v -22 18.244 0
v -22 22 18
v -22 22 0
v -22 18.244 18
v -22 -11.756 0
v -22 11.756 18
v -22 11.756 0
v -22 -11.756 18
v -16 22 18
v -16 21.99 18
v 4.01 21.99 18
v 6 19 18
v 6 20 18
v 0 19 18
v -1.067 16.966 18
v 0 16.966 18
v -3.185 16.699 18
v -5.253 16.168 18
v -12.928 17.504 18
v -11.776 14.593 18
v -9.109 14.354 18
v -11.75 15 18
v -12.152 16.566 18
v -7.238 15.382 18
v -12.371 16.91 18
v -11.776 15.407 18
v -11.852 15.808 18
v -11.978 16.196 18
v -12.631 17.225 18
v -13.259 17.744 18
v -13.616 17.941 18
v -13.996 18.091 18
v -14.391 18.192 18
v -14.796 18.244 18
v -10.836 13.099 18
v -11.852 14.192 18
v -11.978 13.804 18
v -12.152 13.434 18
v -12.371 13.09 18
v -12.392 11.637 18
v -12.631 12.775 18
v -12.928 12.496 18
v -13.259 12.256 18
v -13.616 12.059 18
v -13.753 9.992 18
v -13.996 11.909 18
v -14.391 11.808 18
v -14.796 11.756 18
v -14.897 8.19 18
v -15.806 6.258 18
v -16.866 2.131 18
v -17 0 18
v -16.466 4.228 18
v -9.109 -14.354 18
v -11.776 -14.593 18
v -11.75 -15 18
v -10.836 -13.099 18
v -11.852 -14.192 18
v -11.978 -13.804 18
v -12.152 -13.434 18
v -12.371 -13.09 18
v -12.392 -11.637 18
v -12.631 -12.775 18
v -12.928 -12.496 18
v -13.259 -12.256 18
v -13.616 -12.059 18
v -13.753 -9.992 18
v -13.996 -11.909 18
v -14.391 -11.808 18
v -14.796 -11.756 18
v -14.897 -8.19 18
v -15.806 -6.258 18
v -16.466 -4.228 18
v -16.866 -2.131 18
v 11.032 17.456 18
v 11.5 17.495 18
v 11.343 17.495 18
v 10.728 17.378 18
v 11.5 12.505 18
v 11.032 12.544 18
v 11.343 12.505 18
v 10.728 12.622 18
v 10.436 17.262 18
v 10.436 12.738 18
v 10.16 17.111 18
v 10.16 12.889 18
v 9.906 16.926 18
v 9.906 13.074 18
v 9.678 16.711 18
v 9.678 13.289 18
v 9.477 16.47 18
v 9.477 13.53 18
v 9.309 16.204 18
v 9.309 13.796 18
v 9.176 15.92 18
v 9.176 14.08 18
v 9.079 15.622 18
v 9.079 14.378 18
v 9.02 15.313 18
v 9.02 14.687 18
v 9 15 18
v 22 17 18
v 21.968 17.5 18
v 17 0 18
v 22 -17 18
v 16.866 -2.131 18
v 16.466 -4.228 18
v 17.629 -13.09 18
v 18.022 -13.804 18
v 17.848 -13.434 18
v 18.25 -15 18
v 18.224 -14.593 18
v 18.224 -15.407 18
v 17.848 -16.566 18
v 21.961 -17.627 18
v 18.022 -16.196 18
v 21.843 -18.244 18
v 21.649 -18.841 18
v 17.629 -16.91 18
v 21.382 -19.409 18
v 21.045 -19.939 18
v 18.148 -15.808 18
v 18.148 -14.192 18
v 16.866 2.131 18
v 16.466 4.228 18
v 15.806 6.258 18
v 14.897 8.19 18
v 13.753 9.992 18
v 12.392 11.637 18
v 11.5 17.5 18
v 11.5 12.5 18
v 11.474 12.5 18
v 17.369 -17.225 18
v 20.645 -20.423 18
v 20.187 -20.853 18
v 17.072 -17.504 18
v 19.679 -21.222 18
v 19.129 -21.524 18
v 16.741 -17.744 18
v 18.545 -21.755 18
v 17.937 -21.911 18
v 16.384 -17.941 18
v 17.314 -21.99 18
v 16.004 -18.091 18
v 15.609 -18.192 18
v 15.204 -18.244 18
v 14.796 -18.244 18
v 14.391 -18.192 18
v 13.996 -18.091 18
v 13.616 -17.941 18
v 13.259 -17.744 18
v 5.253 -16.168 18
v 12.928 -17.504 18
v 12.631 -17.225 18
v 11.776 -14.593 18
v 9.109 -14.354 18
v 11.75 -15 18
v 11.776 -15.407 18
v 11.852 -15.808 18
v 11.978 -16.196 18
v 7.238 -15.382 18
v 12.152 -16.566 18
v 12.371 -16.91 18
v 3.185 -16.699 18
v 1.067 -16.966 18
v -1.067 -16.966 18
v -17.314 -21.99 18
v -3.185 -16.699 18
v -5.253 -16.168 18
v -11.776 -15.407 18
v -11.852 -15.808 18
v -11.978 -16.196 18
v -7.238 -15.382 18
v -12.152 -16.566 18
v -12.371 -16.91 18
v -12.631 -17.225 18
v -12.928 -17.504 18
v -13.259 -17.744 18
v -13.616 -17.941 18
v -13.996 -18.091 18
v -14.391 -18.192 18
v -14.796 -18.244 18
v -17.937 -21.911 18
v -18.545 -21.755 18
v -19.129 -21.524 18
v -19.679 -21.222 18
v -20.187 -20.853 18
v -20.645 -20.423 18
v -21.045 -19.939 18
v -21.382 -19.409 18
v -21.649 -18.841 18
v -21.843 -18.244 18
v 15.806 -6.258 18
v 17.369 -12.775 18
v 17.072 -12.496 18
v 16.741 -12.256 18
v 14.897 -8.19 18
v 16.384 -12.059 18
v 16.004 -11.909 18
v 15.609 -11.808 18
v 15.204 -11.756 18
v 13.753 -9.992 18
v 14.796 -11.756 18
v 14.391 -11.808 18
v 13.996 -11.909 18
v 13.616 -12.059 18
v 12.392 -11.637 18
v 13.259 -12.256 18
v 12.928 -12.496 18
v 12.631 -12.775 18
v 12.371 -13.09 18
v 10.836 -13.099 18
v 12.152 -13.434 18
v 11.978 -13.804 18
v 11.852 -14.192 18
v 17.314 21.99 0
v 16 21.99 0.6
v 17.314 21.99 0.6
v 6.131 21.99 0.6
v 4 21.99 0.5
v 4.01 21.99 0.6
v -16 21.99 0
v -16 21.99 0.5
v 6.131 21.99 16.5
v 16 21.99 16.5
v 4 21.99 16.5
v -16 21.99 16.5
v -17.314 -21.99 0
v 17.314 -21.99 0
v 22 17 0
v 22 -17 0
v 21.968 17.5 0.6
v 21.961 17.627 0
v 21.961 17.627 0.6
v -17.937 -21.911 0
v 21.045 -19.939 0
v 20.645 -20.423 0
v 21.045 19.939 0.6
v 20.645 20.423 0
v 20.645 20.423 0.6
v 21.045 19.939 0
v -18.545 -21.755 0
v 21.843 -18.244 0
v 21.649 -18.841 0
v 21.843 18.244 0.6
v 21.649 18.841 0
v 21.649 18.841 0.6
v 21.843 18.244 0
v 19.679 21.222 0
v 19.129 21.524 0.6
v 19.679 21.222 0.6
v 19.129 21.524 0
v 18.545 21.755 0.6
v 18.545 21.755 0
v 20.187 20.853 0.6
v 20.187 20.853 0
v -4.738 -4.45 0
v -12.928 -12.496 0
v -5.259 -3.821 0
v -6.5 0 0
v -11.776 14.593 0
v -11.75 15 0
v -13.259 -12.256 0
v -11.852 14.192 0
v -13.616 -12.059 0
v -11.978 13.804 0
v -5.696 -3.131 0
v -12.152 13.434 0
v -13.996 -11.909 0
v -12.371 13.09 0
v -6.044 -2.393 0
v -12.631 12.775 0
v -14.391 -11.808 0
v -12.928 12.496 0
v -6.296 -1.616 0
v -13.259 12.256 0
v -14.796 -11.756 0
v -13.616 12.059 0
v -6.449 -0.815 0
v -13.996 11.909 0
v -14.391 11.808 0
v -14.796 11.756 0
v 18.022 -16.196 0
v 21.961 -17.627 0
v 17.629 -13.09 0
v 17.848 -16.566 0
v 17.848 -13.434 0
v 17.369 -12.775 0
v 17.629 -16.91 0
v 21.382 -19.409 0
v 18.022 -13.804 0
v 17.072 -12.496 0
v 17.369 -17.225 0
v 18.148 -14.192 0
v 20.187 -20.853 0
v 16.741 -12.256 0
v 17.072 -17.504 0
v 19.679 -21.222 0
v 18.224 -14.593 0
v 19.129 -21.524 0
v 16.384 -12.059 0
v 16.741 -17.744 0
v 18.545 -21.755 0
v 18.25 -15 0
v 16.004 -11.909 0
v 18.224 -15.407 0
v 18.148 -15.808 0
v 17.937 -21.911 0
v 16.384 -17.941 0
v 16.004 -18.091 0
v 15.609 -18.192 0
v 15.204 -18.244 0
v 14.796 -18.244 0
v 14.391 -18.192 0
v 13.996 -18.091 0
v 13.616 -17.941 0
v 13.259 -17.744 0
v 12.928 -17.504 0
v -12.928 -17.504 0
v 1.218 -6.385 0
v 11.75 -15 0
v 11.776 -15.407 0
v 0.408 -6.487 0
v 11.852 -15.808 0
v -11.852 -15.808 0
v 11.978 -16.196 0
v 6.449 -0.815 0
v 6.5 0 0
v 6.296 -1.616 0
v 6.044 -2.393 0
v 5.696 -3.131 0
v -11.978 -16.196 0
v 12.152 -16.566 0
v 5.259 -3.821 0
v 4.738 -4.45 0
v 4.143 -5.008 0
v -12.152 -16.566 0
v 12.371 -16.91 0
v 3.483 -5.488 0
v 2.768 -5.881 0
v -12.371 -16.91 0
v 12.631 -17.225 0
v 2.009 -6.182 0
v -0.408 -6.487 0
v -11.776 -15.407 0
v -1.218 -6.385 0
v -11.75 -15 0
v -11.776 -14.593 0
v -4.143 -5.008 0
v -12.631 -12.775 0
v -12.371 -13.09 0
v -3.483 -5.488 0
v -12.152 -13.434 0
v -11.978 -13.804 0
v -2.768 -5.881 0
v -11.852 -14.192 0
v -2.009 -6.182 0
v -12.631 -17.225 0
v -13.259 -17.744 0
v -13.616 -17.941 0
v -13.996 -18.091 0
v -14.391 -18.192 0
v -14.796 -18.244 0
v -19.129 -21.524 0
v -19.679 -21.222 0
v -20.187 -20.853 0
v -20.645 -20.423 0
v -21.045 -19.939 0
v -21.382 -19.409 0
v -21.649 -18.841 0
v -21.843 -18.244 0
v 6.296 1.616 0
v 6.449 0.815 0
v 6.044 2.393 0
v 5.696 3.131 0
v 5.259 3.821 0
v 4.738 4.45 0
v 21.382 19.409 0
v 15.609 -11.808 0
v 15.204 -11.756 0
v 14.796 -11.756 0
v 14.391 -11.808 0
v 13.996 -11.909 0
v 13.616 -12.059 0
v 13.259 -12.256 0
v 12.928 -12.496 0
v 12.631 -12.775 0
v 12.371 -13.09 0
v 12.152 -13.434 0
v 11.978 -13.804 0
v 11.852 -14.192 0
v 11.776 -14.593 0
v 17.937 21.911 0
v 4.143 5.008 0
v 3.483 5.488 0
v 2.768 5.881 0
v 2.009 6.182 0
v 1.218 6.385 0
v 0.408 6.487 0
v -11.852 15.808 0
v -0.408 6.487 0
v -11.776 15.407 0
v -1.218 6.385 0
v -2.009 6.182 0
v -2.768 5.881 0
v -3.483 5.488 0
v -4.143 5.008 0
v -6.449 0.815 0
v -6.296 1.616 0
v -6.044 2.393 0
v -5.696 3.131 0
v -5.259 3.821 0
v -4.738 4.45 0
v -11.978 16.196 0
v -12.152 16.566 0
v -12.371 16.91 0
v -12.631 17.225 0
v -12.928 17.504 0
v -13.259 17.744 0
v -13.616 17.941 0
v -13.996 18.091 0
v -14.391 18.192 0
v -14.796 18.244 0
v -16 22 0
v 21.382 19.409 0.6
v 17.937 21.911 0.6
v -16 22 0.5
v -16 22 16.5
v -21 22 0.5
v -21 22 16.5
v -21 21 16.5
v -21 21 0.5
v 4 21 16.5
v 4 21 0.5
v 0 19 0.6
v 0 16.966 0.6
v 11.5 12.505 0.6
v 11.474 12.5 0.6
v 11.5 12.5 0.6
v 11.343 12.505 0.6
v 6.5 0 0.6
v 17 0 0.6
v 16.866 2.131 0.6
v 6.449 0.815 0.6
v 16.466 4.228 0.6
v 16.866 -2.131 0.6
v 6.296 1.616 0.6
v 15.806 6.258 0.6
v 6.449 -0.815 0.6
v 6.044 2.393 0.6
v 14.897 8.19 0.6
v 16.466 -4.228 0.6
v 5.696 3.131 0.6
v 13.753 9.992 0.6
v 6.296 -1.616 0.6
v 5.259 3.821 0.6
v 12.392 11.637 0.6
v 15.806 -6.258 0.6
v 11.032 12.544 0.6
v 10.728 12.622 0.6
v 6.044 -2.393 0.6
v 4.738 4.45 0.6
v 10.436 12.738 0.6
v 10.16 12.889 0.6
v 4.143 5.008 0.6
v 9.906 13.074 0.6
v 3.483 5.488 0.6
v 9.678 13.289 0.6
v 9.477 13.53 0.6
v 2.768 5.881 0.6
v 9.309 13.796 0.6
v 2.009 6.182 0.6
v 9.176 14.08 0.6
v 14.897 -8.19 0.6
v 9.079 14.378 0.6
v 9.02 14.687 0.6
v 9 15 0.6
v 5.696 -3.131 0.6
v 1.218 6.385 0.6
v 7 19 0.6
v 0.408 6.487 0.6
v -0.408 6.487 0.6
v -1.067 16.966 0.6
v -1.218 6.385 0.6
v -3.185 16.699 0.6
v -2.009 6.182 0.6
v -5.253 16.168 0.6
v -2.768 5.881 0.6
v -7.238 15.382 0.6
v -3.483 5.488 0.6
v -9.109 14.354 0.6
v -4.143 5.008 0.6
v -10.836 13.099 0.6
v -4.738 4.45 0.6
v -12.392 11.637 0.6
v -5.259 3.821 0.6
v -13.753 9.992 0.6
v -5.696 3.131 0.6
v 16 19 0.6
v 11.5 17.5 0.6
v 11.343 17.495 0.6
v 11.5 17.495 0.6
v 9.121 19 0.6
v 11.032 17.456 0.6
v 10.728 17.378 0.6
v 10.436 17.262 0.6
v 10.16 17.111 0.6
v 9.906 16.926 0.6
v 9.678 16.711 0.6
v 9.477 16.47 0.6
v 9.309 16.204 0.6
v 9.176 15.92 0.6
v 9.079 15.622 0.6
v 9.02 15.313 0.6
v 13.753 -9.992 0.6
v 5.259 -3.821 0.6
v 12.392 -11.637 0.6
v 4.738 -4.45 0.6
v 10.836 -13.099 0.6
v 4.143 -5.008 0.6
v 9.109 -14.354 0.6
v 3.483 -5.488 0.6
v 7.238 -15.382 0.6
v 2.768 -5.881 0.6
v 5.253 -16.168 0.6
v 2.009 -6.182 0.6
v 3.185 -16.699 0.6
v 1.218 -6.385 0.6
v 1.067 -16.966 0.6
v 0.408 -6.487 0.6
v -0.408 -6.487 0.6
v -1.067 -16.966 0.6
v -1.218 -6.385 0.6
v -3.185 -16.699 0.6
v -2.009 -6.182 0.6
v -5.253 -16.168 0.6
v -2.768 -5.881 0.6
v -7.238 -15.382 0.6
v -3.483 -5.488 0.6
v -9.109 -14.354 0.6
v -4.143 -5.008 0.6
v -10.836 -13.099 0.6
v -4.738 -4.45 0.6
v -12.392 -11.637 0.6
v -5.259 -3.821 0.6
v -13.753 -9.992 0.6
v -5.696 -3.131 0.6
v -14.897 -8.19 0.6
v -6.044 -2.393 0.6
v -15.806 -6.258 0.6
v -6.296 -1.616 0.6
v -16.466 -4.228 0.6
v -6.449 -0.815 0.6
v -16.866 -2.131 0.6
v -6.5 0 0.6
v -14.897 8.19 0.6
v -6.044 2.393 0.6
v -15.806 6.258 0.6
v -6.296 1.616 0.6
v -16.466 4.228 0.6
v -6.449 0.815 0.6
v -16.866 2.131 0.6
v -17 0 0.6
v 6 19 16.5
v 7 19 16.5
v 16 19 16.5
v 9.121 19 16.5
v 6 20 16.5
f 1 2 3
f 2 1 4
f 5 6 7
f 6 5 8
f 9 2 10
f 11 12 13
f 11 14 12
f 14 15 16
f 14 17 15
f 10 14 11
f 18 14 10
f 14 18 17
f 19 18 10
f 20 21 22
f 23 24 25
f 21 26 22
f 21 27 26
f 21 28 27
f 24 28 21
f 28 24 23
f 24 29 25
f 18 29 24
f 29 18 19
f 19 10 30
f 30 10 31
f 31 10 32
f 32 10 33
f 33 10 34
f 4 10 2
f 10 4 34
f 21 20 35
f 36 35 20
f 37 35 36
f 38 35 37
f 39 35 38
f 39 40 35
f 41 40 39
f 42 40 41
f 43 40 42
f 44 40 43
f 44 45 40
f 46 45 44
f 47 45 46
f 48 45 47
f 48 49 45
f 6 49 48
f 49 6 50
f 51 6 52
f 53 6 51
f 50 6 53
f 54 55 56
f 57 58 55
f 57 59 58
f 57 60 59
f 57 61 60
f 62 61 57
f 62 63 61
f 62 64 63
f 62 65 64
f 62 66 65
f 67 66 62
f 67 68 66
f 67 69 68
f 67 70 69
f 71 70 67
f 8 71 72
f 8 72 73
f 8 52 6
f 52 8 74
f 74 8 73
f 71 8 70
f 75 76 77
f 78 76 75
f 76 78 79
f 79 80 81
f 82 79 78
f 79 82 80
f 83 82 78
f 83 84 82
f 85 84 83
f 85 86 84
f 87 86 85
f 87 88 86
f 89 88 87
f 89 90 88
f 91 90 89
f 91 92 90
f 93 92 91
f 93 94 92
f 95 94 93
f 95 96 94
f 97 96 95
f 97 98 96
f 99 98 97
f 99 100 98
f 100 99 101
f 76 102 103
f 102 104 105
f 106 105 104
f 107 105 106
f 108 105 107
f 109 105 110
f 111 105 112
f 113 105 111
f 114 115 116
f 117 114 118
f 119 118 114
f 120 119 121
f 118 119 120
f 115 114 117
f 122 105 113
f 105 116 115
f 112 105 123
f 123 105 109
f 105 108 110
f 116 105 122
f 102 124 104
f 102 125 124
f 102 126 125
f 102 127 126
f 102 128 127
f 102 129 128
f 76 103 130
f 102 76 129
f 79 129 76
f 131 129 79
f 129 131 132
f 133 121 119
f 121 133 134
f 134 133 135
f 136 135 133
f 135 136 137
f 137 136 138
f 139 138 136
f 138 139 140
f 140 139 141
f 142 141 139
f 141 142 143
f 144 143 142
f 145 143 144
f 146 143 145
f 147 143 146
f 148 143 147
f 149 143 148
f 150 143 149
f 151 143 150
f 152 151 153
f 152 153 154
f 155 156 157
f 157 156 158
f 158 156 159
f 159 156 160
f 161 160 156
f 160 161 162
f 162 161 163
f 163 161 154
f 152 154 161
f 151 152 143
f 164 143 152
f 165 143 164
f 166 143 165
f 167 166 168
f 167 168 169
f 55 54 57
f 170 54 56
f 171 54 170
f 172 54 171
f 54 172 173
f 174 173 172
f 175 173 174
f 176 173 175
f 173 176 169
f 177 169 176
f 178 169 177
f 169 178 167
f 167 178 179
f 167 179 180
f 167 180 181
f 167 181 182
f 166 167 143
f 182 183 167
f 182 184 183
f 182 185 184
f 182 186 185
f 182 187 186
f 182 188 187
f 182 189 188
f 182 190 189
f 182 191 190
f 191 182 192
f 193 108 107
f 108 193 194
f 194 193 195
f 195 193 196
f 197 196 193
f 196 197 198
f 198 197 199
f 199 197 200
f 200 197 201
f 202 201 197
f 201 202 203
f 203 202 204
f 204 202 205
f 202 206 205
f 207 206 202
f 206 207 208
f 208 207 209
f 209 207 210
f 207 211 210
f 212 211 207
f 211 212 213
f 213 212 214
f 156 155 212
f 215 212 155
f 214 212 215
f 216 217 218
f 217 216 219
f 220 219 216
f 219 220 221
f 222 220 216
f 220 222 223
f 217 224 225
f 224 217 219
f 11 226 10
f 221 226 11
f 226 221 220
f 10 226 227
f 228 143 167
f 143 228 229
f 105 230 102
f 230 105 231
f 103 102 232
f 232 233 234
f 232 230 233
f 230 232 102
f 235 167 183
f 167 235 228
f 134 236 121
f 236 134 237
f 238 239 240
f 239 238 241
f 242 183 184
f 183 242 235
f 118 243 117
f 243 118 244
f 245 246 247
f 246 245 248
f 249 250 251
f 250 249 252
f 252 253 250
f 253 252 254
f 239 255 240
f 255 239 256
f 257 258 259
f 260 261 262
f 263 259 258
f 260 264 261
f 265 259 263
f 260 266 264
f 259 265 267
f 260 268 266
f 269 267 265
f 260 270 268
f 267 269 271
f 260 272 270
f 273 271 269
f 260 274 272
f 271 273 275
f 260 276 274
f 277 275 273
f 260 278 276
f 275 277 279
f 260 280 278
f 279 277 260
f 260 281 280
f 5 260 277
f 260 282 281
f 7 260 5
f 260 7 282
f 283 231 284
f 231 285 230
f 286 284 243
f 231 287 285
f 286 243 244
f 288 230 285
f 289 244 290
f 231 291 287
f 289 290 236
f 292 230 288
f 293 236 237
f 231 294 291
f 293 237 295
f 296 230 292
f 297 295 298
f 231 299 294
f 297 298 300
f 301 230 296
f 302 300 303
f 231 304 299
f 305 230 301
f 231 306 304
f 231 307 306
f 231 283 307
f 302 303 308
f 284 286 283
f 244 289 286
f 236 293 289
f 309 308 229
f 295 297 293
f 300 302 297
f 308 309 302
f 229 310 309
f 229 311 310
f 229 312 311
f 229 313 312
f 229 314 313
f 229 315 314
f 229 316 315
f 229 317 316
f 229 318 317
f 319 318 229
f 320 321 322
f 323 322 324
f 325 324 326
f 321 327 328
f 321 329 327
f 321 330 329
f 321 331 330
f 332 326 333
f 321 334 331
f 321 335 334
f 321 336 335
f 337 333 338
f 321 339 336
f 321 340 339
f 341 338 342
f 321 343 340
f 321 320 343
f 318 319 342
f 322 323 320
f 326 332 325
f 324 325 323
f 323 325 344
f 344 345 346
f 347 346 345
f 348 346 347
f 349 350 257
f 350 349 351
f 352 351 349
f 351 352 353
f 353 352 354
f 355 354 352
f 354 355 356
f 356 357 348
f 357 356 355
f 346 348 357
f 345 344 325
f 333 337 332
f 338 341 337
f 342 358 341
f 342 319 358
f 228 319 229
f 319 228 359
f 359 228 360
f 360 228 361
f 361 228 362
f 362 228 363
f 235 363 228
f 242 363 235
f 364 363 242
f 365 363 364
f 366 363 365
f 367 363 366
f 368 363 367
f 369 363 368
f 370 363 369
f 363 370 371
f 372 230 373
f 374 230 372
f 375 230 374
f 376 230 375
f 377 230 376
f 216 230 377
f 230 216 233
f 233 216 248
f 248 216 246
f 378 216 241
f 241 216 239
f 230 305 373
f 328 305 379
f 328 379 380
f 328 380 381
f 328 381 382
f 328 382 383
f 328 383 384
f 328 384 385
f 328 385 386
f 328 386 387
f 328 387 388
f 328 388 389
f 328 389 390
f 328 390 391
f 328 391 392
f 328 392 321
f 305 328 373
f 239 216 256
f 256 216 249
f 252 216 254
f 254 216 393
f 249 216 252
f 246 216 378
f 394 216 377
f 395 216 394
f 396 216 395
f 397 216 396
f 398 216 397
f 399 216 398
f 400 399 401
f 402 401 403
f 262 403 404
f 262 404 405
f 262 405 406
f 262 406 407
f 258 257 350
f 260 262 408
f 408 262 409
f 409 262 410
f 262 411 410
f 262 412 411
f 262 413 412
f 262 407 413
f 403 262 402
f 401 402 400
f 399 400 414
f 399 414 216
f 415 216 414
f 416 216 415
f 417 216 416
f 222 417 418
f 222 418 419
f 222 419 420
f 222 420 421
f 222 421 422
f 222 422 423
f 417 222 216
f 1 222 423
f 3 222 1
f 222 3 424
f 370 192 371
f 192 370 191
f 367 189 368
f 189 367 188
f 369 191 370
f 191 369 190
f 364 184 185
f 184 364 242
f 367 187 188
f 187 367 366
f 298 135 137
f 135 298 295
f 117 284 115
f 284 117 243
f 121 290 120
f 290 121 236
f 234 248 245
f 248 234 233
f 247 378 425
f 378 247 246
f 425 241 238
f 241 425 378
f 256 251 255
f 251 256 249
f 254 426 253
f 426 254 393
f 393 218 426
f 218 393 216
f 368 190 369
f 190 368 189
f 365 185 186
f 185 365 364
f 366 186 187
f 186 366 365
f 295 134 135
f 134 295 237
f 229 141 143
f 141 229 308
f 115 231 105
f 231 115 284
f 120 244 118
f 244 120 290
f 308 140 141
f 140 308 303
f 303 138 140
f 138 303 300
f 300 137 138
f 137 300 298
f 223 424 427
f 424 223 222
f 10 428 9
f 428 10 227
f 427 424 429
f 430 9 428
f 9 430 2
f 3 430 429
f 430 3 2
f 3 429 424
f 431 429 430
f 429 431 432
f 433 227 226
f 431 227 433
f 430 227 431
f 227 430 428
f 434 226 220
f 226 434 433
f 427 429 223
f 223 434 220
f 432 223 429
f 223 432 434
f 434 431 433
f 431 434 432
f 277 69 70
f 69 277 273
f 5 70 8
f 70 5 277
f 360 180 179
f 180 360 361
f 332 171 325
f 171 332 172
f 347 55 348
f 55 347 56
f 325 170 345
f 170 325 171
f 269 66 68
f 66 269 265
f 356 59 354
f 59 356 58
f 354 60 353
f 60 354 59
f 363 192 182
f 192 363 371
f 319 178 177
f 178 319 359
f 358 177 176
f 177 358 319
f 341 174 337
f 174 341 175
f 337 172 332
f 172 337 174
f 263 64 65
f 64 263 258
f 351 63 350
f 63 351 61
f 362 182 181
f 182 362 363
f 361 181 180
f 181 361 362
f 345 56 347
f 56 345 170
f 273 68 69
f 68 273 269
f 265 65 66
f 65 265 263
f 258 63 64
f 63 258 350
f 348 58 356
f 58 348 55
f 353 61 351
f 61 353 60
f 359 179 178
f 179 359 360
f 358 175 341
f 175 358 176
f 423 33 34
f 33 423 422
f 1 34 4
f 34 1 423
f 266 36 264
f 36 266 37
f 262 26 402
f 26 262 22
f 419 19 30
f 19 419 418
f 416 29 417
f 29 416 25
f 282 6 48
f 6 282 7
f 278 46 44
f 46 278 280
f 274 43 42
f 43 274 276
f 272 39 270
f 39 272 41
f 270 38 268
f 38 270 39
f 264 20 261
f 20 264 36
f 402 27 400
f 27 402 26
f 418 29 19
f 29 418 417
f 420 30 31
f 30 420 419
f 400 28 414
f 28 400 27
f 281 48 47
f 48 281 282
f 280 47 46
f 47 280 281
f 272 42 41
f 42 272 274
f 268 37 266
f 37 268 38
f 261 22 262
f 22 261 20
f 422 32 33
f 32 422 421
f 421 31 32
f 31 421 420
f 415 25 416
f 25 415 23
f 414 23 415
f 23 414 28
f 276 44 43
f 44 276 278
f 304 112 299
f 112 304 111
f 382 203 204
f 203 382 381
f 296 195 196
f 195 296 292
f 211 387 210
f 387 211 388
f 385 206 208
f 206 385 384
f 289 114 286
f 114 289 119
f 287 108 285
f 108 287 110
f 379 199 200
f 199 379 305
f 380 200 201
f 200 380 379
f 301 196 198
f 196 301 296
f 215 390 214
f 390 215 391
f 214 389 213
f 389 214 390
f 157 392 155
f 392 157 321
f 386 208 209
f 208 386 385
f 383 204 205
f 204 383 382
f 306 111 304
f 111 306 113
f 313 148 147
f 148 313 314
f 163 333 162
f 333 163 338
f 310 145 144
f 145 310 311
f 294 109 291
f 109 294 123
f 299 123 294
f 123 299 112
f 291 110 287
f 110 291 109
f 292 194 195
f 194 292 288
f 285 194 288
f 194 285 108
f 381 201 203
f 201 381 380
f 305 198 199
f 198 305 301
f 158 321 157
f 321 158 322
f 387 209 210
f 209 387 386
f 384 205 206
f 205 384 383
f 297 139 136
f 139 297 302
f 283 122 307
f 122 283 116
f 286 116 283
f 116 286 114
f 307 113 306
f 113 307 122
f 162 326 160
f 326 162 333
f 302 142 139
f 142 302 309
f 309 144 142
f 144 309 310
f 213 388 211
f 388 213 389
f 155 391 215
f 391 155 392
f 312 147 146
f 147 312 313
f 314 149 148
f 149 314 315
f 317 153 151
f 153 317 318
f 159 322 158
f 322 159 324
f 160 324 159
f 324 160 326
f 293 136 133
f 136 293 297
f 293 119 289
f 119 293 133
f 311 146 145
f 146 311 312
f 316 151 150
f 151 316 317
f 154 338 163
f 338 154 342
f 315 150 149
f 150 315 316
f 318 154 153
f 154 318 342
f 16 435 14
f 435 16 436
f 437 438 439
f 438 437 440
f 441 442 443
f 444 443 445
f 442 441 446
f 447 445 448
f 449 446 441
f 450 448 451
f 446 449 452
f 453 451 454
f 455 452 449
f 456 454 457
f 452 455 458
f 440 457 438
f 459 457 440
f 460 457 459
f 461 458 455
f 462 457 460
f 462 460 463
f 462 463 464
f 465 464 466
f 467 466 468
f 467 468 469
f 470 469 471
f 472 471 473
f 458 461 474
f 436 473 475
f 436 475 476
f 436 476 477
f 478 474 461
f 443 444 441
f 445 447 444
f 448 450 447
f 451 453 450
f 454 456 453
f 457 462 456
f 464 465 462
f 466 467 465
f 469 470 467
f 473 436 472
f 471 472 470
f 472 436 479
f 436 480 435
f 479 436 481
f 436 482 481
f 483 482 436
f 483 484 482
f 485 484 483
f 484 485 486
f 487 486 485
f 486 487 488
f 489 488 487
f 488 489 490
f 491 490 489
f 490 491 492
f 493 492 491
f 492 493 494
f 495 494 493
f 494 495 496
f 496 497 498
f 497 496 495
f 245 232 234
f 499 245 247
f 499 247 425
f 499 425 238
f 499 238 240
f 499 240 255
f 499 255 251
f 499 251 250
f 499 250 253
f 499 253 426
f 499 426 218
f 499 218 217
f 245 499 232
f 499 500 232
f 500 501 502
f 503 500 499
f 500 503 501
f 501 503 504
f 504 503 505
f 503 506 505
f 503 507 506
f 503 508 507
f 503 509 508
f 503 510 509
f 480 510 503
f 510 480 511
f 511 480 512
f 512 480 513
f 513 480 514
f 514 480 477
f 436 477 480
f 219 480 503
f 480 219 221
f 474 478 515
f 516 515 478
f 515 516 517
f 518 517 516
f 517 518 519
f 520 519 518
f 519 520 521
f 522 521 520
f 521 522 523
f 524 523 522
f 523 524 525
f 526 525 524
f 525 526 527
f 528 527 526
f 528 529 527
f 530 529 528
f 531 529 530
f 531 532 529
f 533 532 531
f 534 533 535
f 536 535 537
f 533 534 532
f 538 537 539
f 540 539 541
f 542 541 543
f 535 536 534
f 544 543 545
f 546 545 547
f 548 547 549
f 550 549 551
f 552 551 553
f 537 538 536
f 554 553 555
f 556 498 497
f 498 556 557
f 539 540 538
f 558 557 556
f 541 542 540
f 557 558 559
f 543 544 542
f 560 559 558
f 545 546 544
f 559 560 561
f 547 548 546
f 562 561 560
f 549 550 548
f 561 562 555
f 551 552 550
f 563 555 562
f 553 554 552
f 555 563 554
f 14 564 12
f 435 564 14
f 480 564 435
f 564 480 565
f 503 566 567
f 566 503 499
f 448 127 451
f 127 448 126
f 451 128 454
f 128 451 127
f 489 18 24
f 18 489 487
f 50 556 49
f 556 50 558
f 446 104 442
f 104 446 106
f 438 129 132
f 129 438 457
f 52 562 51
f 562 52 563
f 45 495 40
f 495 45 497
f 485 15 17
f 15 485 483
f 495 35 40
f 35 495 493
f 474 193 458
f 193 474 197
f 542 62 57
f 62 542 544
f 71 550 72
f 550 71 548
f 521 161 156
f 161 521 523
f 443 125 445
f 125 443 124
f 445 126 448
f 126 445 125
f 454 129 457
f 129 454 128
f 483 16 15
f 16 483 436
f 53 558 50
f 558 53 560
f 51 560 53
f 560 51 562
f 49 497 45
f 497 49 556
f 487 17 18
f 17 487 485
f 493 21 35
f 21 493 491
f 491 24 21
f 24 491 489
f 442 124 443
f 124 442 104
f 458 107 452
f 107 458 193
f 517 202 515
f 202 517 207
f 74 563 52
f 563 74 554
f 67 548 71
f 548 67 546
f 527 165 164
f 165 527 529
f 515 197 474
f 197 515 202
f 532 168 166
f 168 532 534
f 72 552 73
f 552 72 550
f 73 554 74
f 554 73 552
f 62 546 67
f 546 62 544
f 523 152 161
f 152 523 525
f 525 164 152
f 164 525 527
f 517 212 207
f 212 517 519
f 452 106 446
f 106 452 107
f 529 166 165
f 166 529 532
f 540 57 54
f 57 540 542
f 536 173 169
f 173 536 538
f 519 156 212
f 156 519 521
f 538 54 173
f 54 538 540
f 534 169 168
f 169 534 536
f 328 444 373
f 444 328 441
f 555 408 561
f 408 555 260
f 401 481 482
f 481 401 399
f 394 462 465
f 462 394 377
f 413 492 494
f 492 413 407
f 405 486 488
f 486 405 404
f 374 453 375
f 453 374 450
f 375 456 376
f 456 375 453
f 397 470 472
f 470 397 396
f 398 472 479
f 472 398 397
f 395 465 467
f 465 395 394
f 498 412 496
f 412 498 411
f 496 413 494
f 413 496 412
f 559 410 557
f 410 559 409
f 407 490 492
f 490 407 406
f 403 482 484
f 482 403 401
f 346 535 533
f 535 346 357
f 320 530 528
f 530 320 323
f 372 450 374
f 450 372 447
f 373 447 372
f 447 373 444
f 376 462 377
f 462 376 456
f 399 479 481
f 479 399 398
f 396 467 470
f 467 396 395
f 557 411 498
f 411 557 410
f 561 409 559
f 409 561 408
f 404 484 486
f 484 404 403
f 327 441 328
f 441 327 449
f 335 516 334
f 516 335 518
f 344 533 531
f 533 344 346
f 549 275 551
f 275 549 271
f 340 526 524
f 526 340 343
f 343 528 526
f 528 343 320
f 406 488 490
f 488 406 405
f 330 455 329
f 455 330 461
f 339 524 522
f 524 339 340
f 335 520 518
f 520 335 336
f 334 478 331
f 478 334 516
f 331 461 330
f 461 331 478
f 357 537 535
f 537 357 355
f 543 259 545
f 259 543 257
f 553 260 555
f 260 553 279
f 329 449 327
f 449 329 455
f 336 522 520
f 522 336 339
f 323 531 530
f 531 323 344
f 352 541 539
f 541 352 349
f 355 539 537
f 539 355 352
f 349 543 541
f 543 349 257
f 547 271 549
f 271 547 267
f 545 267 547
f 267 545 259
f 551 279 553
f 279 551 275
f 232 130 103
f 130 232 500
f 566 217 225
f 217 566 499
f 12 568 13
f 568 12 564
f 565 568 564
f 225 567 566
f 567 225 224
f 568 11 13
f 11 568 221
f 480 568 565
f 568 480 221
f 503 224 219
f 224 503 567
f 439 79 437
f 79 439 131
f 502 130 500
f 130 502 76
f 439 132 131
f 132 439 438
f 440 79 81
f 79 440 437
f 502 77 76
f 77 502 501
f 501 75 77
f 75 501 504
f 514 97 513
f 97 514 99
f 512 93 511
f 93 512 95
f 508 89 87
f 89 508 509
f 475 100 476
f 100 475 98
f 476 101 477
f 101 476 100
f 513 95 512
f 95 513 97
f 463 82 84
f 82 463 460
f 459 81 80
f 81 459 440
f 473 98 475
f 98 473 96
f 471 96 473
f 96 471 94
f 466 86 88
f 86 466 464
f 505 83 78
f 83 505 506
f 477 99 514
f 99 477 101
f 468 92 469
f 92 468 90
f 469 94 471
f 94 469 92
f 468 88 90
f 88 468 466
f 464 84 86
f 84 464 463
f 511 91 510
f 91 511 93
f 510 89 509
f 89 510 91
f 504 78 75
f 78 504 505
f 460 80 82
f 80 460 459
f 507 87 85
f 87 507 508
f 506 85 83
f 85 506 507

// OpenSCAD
$fn = 50;


union() {
	difference() {
		union() {
			translate(v = [0, 0, 0]) {
				rotate(a = [0, 0, 0]) {
					hull() {
						translate(v = [-17.0000000000, 17.0000000000, 0]) {
							rotate(a = [0, 0, 0]) {
								translate(v = [0, 0, 0]) {
									rotate(a = [0, 0, 0]) {
										cylinder(h = 18, r = 5);
									}
								}
							}
						}
						translate(v = [17.0000000000, 17.0000000000, 0]) {
							rotate(a = [0, 0, 0]) {
								translate(v = [0, 0, 0]) {
									rotate(a = [0, 0, 0]) {
										cylinder(h = 18, r = 5);
									}
								}
							}
						}
						translate(v = [-17.0000000000, -17.0000000000, 0]) {
							rotate(a = [0, 0, 0]) {
								translate(v = [0, 0, 0]) {
									rotate(a = [0, 0, 0]) {
										cylinder(h = 18, r = 5);
									}
								}
							}
						}
						translate(v = [17.0000000000, -17.0000000000, 0]) {
							rotate(a = [0, 0, 0]) {
								translate(v = [0, 0, 0]) {
									rotate(a = [0, 0, 0]) {
										cylinder(h = 18, r = 5);
									}
								}
							}
						}
					}
				}
			}
			translate(v = [-22.0000000000, 16.0000000000, 0]) {
				rotate(a = [0, 0, 0]) {
					cube(size = [6, 6, 18]);
				}
			}
		}
		union() {
			#translate(v = [-21.0000000000, 21.0000000000, 0.5000000000]) {
				rotate(a = [0, 0, 0]) {
					cube(size = [25, 1, 16]);
				}
			}
			translate(v = [-22.5000000000, -15.0000000000, -125]) {
				rotate(a = [0, 0, 0]) {
					hull() {
						translate(v = [7.5000000000, 0, 0]) {
							rotate(a = [0, 0, 0]) {
								translate(v = [0, 0, 0]) {
									rotate(a = [0, 0, 0]) {
										cylinder(h = 250, r = 3.2500000000);
									}
								}
							}
						}
						translate(v = [-7.5000000000, 0, 0]) {
							rotate(a = [0, 0, 0]) {
								translate(v = [0, 0, 0]) {
									rotate(a = [0, 0, 0]) {
										cylinder(h = 250, r = 3.2500000000);
									}
								}
							}
						}
					}
				}
			}
			translate(v = [-22.5000000000, 15.0000000000, -125]) {
				rotate(a = [0, 0, 0]) {
					hull() {
						translate(v = [7.5000000000, 0, 0]) {
							rotate(a = [0, 0, 0]) {
								translate(v = [0, 0, 0]) {
									rotate(a = [0, 0, 0]) {
										cylinder(h = 250, r = 3.2500000000);
									}
								}
							}
						}
						translate(v = [-7.5000000000, 0, 0]) {
							rotate(a = [0, 0, 0]) {
								translate(v = [0, 0, 0]) {
									rotate(a = [0, 0, 0]) {
										cylinder(h = 250, r = 3.2500000000);
									}
								}
							}
						}
					}
				}
			}
			translate(v = [15.0000000000, -15.0000000000, -125.0000000000]) {
				rotate(a = [0, 0, 0]) {
					cylinder(h = 250, r = 3.2500000000);
				}
			}
			translate(v = [0.0000000000, 11.0000000000, 0.6000000000]) {
				rotate(a = [0, 0, 0]) {
					cube(size = [11, 8, 20.4000000000]);
				}
			}
			translate(v = [0, 0, 0.6000000000]) {
				rotate(a = [0, 0, 0]) {
					cylinder(h = 20.4000000000, r = 17.0000000000);
				}
			}
			translate(v = [0, 0, -9.0000000000]) {
				rotate(a = [0, 0, 0]) {
					cylinder(h = 18, r = 6.5000000000);
				}
			}
			translate(v = [0.0000000000, 17.5000000000, 0.6000000000]) {
				rotate(a = [0, 0, 0]) {
					cube(size = [22.0000000000, 1.5000000000, 20.4000000000]);
				}
			}
			translate(v = [16.0000000000, 17.5000000000, 0.6000000000]) {
				rotate(a = [0, 0, 0]) {
					cube(size = [6, 4.5000000000, 20.4000000000]);
				}
			}
			translate(v = [6.0000000000, 17.5000000000, 16.5000000000]) {
				rotate(a = [0, 0, 0]) {
					cube(size = [16, 4.5000000000, 1.5000000000]);
				}
			}
			translate(v = [3.2500000000, 22.7500000000, 0.6000000000]) {
				rotate(a = [0, 0, -45]) {
					cube(size = [7.5000000000, 1.5000000000, 20.4000000000]);
				}
			}
			translate(v = [2.5000000000, 12.5000000000, 0.6000000000]) {
				rotate(a = [0, 0, 0]) {
					cube(size = [9.0000000000, 5, 17.4000000000]);
				}
			}
		}
	}
	union() {
		translate(v = [14, 15.0000000000, 0]) {
			rotate(a = [0, 0, 0]) {
				hull() {
					translate(v = [2.5000000000, 0, 0]) {
						rotate(a = [0, 0, 0]) {
							#translate(v = [0, 0, 0]) {
								rotate(a = [0, 0, 0]) {
									cylinder(h = 18, r = 2.5000000000);
								}
							}
						}
					}
					translate(v = [-2.5000000000, 0, 0]) {
						rotate(a = [0, 0, 0]) {
							#translate(v = [0, 0, 0]) {
								rotate(a = [0, 0, 0]) {
									cylinder(h = 18, r = 2.5000000000);
								}
							}
						}
					}
				}
			}
		}
	}
}
